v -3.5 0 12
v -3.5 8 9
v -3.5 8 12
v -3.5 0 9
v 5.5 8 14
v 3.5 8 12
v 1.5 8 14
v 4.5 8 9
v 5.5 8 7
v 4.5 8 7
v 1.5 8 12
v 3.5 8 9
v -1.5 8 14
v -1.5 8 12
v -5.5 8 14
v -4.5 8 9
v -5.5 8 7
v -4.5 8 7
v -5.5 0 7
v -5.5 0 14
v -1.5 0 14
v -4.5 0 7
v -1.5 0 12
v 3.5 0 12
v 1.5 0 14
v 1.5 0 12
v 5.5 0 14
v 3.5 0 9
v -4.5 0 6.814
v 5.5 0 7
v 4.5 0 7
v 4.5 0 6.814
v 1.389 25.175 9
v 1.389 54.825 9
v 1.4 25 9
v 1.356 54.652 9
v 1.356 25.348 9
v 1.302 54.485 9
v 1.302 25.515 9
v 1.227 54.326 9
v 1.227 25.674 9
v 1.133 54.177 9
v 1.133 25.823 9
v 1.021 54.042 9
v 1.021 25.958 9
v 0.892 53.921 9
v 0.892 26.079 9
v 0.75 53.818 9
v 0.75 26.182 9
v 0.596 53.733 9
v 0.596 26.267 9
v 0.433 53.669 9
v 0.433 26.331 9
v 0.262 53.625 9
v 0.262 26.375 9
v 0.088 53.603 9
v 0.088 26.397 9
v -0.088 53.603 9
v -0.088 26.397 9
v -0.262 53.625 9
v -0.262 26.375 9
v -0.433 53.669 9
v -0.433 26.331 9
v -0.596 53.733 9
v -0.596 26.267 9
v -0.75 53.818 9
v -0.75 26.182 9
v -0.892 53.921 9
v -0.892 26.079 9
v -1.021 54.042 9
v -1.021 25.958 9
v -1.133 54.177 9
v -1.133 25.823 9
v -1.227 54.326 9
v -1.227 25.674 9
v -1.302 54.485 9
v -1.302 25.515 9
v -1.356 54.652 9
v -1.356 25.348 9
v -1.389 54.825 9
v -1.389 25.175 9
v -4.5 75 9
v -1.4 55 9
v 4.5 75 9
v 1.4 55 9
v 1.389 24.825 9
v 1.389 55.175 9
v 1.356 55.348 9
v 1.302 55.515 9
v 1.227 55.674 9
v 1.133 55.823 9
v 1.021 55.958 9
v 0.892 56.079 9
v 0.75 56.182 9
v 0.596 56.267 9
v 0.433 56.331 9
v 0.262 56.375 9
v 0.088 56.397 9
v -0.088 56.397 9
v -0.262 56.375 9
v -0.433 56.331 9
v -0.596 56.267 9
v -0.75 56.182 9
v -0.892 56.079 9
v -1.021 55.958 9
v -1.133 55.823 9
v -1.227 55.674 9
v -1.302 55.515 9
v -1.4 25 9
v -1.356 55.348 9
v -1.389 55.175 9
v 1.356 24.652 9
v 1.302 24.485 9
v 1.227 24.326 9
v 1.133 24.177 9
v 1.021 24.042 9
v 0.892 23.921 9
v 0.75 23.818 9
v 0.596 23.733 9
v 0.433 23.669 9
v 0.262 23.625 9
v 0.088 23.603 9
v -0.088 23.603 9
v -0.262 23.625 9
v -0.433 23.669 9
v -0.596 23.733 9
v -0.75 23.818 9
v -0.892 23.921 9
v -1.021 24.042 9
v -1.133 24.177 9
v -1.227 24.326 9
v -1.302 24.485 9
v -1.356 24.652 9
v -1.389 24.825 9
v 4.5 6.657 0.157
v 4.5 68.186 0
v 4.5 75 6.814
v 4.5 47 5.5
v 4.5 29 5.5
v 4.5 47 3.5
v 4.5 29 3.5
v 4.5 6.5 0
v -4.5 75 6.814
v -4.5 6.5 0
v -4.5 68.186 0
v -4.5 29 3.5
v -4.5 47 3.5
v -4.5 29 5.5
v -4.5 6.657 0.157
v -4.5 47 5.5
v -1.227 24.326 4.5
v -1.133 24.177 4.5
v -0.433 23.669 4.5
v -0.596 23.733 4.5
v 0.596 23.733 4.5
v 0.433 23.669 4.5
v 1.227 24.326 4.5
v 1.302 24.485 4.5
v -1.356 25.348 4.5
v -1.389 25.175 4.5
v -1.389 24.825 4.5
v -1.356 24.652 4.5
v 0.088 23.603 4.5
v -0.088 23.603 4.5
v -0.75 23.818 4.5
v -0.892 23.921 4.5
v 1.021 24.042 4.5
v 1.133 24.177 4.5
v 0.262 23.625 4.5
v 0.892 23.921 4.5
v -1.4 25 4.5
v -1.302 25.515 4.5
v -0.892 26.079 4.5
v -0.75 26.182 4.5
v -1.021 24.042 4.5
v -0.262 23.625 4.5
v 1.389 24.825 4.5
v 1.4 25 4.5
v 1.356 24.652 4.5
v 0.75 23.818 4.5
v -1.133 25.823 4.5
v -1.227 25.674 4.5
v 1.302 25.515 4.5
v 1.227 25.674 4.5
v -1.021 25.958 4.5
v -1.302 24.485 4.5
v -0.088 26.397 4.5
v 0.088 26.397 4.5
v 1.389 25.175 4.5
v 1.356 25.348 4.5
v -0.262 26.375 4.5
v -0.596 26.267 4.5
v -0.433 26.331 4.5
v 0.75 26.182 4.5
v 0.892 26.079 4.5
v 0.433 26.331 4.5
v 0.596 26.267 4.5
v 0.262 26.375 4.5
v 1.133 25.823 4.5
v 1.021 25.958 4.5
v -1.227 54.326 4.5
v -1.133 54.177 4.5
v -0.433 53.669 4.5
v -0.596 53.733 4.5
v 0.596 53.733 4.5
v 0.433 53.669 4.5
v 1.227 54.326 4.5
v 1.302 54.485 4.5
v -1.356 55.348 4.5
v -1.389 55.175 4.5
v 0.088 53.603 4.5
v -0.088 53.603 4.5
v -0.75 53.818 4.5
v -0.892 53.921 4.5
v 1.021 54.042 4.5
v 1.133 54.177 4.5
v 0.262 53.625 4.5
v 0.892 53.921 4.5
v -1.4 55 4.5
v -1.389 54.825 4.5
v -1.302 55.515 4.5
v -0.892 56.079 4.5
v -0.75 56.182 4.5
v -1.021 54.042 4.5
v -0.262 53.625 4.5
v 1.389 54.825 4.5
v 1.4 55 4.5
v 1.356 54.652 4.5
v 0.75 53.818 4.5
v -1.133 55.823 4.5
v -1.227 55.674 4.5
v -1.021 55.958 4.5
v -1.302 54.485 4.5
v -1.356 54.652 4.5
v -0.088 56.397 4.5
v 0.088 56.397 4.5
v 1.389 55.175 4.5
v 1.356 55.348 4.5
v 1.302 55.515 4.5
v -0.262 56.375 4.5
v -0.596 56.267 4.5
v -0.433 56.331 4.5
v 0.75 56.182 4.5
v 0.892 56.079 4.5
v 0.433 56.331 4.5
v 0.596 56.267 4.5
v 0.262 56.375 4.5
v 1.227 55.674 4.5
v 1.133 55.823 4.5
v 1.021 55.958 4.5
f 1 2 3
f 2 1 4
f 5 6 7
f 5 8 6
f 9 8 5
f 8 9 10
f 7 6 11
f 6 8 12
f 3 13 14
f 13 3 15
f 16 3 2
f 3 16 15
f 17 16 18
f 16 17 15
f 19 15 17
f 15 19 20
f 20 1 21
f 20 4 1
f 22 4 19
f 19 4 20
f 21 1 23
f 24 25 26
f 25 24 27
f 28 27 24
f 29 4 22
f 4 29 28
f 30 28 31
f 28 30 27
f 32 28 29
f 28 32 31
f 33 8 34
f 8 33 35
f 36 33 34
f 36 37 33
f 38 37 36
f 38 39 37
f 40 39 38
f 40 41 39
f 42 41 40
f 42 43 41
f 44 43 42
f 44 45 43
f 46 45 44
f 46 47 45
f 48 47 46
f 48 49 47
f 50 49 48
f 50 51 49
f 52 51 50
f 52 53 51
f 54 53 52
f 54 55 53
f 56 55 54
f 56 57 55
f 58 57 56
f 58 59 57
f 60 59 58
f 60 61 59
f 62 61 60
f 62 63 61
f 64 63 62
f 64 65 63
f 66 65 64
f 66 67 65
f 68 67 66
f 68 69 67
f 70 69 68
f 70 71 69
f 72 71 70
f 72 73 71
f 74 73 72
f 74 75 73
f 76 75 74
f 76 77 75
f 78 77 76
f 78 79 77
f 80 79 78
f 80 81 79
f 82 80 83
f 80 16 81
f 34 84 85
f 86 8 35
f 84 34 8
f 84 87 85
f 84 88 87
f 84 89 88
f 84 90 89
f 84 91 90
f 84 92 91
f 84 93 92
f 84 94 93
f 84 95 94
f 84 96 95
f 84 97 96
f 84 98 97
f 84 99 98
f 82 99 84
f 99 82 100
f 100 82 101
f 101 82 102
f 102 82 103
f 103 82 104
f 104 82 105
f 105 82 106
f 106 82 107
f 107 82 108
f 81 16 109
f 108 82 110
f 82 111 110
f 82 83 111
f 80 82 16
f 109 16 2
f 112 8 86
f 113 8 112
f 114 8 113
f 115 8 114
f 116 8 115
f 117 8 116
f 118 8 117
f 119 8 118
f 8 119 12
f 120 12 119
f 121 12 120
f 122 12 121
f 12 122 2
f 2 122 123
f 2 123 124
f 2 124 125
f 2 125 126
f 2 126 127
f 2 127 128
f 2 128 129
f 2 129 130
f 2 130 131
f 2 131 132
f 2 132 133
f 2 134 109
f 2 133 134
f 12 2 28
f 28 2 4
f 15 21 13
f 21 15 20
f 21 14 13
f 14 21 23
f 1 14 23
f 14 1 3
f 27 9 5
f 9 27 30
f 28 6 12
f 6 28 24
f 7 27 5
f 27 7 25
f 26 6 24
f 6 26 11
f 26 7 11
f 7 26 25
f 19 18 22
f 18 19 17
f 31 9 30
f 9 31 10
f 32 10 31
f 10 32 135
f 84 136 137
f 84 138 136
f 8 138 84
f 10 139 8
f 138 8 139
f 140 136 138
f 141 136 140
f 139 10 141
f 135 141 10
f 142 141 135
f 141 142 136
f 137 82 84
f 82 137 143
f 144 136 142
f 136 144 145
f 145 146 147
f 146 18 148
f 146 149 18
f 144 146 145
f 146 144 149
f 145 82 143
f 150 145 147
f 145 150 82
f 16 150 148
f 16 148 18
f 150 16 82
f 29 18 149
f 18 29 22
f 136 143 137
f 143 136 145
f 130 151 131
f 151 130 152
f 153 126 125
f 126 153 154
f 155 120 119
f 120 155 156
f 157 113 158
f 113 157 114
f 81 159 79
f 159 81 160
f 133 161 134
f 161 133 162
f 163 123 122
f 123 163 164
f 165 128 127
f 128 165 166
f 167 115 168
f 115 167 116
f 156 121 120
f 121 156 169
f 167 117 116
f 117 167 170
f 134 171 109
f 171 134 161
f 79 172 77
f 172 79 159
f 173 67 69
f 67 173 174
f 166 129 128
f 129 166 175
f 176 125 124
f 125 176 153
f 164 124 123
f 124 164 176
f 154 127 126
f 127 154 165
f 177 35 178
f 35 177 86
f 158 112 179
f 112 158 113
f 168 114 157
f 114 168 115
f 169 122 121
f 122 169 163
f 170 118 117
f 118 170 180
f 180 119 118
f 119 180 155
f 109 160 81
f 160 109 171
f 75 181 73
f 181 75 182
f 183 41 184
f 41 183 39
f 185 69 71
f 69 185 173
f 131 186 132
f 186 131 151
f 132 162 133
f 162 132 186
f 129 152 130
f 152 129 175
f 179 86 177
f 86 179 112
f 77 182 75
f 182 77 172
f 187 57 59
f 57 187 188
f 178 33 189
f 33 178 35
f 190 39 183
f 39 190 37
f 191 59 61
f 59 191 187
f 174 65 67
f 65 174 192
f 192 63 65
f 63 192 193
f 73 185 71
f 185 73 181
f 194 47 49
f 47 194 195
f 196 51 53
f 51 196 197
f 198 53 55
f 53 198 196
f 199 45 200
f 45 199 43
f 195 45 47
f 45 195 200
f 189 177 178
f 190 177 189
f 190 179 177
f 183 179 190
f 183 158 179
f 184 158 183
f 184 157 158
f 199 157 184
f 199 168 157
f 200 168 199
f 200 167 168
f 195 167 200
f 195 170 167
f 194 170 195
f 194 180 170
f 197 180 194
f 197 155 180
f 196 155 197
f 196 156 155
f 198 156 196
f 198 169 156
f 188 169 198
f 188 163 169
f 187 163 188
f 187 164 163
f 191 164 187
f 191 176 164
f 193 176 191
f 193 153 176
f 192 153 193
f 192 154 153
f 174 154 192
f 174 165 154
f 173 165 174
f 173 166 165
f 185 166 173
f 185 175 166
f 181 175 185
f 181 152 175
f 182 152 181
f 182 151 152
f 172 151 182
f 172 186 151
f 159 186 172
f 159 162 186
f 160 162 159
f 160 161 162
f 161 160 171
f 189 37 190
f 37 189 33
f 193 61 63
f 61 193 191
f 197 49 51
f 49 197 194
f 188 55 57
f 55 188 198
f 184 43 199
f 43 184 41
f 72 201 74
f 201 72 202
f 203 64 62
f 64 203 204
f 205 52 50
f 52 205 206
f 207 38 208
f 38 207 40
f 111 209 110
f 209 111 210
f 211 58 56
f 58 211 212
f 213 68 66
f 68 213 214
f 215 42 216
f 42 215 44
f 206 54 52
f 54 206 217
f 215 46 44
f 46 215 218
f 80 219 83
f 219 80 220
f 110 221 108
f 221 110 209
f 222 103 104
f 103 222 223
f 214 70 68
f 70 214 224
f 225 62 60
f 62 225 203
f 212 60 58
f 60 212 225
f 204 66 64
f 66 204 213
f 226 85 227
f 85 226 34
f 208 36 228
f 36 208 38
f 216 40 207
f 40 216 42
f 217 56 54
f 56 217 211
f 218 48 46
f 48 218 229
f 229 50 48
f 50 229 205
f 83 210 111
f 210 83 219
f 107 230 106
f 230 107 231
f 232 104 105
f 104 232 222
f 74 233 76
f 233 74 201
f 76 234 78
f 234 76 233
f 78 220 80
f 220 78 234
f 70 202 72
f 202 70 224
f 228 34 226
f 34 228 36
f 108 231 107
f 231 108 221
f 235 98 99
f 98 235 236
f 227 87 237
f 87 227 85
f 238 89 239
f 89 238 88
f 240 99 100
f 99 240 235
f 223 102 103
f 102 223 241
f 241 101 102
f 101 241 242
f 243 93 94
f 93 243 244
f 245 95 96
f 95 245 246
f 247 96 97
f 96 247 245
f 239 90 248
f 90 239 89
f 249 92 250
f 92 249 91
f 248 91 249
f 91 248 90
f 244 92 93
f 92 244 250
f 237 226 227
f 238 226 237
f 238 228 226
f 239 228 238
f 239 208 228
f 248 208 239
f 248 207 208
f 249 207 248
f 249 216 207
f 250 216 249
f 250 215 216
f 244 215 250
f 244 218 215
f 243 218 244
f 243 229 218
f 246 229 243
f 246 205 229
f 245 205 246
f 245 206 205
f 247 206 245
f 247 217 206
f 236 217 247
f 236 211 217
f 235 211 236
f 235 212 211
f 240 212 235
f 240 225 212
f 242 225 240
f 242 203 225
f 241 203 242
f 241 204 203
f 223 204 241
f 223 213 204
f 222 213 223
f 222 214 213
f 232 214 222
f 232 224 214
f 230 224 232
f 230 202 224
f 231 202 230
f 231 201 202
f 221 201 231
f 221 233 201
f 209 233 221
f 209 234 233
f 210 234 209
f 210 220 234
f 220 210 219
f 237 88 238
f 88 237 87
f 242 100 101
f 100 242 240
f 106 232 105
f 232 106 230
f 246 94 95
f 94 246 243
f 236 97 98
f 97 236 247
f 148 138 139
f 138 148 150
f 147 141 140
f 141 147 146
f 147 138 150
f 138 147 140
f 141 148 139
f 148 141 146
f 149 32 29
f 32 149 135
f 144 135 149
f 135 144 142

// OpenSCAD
$fn=50;

KEEL_W=9.0;
KEEL_H=9.0;
KEEL_L=75;

module cable_clamp(y_position) {
    translate([1.5, y_position, 4.5]) {
        rotate([90, 0, 0]) {
            union() {
                // Vertical arm of the C-clamp 2
                translate([2.0, 0, 0]) cube([2, 5, 8]);
                // Horizontal arm of the C-clamp
                rotate([90, 0, 0])
                translate([0, 0, -5]) cube([2, 8, 2]);
                // Vertical arm of the C-clamp 1
                translate([-7, 0, 0]) cube([2, 5, 8]);
                // Horizontal arm of the C-clamp
                rotate([90, 0, 0])
                translate([-5.0, 0,-5]) cube([2, 8, 2]);
                // clamp bed
                rotate([90, 0, 0])
                translate([-7.0, 0,-0]) cube([11, 8, 2]);
            }
        }
    }
}

module cutout_group(y_position) {
    translate([0, y_position, 0]) {
        
        // front of keel slope
        translate([-5, -KEEL_L-1, -3])
        rotate([-45, 0, 0])
        //(x, z, y)
        cube([10, 11, 8]); 

        // screw holes
        translate([0, -20, 0]) cylinder(h=5, d=2.8); 
        translate([0.0, -50, 0]) cylinder(h=5, d=2.8);   

        // thru slots for straps
        translate([-7.0, -42,-1]) cube([14, 18, 2]);       
        //translate([-7.0, -92,-1]) cube([14, 18, 2]);
        
    }
}

// translate and rotate so model starts at 0, 0, 0
// someone tell me why this has to be done by hand?
translate([0, 0, KEEL_H/2]) {
    rotate([180, 180, 0]) { // Flipping the entire object along the Y axis
        difference() {
            union() {           
                // keel
                rotate([90,0,0])
                linear_extrude(KEEL_L) square([KEEL_W, KEEL_H], center=true); 
                // cable clamp
                cable_clamp(0);
                // measuring posts
                //translate([0,  MOUNT_HOLE_OFFSET+15, 0]) cylinder(h=7, d=1.0);            
                //translate([0, MOUNT_HOLE_OFFSET+30, 0]) cylinder(h=7, d=1.0);
            }
            
            cutout_group(-5);
            
            // rear of keel slope
            translate([-5, -1, -10])
            rotate([45, 0, 0])
            //(x, z, y)
            cube([10, 11, 8]);  
        }
    }
}
